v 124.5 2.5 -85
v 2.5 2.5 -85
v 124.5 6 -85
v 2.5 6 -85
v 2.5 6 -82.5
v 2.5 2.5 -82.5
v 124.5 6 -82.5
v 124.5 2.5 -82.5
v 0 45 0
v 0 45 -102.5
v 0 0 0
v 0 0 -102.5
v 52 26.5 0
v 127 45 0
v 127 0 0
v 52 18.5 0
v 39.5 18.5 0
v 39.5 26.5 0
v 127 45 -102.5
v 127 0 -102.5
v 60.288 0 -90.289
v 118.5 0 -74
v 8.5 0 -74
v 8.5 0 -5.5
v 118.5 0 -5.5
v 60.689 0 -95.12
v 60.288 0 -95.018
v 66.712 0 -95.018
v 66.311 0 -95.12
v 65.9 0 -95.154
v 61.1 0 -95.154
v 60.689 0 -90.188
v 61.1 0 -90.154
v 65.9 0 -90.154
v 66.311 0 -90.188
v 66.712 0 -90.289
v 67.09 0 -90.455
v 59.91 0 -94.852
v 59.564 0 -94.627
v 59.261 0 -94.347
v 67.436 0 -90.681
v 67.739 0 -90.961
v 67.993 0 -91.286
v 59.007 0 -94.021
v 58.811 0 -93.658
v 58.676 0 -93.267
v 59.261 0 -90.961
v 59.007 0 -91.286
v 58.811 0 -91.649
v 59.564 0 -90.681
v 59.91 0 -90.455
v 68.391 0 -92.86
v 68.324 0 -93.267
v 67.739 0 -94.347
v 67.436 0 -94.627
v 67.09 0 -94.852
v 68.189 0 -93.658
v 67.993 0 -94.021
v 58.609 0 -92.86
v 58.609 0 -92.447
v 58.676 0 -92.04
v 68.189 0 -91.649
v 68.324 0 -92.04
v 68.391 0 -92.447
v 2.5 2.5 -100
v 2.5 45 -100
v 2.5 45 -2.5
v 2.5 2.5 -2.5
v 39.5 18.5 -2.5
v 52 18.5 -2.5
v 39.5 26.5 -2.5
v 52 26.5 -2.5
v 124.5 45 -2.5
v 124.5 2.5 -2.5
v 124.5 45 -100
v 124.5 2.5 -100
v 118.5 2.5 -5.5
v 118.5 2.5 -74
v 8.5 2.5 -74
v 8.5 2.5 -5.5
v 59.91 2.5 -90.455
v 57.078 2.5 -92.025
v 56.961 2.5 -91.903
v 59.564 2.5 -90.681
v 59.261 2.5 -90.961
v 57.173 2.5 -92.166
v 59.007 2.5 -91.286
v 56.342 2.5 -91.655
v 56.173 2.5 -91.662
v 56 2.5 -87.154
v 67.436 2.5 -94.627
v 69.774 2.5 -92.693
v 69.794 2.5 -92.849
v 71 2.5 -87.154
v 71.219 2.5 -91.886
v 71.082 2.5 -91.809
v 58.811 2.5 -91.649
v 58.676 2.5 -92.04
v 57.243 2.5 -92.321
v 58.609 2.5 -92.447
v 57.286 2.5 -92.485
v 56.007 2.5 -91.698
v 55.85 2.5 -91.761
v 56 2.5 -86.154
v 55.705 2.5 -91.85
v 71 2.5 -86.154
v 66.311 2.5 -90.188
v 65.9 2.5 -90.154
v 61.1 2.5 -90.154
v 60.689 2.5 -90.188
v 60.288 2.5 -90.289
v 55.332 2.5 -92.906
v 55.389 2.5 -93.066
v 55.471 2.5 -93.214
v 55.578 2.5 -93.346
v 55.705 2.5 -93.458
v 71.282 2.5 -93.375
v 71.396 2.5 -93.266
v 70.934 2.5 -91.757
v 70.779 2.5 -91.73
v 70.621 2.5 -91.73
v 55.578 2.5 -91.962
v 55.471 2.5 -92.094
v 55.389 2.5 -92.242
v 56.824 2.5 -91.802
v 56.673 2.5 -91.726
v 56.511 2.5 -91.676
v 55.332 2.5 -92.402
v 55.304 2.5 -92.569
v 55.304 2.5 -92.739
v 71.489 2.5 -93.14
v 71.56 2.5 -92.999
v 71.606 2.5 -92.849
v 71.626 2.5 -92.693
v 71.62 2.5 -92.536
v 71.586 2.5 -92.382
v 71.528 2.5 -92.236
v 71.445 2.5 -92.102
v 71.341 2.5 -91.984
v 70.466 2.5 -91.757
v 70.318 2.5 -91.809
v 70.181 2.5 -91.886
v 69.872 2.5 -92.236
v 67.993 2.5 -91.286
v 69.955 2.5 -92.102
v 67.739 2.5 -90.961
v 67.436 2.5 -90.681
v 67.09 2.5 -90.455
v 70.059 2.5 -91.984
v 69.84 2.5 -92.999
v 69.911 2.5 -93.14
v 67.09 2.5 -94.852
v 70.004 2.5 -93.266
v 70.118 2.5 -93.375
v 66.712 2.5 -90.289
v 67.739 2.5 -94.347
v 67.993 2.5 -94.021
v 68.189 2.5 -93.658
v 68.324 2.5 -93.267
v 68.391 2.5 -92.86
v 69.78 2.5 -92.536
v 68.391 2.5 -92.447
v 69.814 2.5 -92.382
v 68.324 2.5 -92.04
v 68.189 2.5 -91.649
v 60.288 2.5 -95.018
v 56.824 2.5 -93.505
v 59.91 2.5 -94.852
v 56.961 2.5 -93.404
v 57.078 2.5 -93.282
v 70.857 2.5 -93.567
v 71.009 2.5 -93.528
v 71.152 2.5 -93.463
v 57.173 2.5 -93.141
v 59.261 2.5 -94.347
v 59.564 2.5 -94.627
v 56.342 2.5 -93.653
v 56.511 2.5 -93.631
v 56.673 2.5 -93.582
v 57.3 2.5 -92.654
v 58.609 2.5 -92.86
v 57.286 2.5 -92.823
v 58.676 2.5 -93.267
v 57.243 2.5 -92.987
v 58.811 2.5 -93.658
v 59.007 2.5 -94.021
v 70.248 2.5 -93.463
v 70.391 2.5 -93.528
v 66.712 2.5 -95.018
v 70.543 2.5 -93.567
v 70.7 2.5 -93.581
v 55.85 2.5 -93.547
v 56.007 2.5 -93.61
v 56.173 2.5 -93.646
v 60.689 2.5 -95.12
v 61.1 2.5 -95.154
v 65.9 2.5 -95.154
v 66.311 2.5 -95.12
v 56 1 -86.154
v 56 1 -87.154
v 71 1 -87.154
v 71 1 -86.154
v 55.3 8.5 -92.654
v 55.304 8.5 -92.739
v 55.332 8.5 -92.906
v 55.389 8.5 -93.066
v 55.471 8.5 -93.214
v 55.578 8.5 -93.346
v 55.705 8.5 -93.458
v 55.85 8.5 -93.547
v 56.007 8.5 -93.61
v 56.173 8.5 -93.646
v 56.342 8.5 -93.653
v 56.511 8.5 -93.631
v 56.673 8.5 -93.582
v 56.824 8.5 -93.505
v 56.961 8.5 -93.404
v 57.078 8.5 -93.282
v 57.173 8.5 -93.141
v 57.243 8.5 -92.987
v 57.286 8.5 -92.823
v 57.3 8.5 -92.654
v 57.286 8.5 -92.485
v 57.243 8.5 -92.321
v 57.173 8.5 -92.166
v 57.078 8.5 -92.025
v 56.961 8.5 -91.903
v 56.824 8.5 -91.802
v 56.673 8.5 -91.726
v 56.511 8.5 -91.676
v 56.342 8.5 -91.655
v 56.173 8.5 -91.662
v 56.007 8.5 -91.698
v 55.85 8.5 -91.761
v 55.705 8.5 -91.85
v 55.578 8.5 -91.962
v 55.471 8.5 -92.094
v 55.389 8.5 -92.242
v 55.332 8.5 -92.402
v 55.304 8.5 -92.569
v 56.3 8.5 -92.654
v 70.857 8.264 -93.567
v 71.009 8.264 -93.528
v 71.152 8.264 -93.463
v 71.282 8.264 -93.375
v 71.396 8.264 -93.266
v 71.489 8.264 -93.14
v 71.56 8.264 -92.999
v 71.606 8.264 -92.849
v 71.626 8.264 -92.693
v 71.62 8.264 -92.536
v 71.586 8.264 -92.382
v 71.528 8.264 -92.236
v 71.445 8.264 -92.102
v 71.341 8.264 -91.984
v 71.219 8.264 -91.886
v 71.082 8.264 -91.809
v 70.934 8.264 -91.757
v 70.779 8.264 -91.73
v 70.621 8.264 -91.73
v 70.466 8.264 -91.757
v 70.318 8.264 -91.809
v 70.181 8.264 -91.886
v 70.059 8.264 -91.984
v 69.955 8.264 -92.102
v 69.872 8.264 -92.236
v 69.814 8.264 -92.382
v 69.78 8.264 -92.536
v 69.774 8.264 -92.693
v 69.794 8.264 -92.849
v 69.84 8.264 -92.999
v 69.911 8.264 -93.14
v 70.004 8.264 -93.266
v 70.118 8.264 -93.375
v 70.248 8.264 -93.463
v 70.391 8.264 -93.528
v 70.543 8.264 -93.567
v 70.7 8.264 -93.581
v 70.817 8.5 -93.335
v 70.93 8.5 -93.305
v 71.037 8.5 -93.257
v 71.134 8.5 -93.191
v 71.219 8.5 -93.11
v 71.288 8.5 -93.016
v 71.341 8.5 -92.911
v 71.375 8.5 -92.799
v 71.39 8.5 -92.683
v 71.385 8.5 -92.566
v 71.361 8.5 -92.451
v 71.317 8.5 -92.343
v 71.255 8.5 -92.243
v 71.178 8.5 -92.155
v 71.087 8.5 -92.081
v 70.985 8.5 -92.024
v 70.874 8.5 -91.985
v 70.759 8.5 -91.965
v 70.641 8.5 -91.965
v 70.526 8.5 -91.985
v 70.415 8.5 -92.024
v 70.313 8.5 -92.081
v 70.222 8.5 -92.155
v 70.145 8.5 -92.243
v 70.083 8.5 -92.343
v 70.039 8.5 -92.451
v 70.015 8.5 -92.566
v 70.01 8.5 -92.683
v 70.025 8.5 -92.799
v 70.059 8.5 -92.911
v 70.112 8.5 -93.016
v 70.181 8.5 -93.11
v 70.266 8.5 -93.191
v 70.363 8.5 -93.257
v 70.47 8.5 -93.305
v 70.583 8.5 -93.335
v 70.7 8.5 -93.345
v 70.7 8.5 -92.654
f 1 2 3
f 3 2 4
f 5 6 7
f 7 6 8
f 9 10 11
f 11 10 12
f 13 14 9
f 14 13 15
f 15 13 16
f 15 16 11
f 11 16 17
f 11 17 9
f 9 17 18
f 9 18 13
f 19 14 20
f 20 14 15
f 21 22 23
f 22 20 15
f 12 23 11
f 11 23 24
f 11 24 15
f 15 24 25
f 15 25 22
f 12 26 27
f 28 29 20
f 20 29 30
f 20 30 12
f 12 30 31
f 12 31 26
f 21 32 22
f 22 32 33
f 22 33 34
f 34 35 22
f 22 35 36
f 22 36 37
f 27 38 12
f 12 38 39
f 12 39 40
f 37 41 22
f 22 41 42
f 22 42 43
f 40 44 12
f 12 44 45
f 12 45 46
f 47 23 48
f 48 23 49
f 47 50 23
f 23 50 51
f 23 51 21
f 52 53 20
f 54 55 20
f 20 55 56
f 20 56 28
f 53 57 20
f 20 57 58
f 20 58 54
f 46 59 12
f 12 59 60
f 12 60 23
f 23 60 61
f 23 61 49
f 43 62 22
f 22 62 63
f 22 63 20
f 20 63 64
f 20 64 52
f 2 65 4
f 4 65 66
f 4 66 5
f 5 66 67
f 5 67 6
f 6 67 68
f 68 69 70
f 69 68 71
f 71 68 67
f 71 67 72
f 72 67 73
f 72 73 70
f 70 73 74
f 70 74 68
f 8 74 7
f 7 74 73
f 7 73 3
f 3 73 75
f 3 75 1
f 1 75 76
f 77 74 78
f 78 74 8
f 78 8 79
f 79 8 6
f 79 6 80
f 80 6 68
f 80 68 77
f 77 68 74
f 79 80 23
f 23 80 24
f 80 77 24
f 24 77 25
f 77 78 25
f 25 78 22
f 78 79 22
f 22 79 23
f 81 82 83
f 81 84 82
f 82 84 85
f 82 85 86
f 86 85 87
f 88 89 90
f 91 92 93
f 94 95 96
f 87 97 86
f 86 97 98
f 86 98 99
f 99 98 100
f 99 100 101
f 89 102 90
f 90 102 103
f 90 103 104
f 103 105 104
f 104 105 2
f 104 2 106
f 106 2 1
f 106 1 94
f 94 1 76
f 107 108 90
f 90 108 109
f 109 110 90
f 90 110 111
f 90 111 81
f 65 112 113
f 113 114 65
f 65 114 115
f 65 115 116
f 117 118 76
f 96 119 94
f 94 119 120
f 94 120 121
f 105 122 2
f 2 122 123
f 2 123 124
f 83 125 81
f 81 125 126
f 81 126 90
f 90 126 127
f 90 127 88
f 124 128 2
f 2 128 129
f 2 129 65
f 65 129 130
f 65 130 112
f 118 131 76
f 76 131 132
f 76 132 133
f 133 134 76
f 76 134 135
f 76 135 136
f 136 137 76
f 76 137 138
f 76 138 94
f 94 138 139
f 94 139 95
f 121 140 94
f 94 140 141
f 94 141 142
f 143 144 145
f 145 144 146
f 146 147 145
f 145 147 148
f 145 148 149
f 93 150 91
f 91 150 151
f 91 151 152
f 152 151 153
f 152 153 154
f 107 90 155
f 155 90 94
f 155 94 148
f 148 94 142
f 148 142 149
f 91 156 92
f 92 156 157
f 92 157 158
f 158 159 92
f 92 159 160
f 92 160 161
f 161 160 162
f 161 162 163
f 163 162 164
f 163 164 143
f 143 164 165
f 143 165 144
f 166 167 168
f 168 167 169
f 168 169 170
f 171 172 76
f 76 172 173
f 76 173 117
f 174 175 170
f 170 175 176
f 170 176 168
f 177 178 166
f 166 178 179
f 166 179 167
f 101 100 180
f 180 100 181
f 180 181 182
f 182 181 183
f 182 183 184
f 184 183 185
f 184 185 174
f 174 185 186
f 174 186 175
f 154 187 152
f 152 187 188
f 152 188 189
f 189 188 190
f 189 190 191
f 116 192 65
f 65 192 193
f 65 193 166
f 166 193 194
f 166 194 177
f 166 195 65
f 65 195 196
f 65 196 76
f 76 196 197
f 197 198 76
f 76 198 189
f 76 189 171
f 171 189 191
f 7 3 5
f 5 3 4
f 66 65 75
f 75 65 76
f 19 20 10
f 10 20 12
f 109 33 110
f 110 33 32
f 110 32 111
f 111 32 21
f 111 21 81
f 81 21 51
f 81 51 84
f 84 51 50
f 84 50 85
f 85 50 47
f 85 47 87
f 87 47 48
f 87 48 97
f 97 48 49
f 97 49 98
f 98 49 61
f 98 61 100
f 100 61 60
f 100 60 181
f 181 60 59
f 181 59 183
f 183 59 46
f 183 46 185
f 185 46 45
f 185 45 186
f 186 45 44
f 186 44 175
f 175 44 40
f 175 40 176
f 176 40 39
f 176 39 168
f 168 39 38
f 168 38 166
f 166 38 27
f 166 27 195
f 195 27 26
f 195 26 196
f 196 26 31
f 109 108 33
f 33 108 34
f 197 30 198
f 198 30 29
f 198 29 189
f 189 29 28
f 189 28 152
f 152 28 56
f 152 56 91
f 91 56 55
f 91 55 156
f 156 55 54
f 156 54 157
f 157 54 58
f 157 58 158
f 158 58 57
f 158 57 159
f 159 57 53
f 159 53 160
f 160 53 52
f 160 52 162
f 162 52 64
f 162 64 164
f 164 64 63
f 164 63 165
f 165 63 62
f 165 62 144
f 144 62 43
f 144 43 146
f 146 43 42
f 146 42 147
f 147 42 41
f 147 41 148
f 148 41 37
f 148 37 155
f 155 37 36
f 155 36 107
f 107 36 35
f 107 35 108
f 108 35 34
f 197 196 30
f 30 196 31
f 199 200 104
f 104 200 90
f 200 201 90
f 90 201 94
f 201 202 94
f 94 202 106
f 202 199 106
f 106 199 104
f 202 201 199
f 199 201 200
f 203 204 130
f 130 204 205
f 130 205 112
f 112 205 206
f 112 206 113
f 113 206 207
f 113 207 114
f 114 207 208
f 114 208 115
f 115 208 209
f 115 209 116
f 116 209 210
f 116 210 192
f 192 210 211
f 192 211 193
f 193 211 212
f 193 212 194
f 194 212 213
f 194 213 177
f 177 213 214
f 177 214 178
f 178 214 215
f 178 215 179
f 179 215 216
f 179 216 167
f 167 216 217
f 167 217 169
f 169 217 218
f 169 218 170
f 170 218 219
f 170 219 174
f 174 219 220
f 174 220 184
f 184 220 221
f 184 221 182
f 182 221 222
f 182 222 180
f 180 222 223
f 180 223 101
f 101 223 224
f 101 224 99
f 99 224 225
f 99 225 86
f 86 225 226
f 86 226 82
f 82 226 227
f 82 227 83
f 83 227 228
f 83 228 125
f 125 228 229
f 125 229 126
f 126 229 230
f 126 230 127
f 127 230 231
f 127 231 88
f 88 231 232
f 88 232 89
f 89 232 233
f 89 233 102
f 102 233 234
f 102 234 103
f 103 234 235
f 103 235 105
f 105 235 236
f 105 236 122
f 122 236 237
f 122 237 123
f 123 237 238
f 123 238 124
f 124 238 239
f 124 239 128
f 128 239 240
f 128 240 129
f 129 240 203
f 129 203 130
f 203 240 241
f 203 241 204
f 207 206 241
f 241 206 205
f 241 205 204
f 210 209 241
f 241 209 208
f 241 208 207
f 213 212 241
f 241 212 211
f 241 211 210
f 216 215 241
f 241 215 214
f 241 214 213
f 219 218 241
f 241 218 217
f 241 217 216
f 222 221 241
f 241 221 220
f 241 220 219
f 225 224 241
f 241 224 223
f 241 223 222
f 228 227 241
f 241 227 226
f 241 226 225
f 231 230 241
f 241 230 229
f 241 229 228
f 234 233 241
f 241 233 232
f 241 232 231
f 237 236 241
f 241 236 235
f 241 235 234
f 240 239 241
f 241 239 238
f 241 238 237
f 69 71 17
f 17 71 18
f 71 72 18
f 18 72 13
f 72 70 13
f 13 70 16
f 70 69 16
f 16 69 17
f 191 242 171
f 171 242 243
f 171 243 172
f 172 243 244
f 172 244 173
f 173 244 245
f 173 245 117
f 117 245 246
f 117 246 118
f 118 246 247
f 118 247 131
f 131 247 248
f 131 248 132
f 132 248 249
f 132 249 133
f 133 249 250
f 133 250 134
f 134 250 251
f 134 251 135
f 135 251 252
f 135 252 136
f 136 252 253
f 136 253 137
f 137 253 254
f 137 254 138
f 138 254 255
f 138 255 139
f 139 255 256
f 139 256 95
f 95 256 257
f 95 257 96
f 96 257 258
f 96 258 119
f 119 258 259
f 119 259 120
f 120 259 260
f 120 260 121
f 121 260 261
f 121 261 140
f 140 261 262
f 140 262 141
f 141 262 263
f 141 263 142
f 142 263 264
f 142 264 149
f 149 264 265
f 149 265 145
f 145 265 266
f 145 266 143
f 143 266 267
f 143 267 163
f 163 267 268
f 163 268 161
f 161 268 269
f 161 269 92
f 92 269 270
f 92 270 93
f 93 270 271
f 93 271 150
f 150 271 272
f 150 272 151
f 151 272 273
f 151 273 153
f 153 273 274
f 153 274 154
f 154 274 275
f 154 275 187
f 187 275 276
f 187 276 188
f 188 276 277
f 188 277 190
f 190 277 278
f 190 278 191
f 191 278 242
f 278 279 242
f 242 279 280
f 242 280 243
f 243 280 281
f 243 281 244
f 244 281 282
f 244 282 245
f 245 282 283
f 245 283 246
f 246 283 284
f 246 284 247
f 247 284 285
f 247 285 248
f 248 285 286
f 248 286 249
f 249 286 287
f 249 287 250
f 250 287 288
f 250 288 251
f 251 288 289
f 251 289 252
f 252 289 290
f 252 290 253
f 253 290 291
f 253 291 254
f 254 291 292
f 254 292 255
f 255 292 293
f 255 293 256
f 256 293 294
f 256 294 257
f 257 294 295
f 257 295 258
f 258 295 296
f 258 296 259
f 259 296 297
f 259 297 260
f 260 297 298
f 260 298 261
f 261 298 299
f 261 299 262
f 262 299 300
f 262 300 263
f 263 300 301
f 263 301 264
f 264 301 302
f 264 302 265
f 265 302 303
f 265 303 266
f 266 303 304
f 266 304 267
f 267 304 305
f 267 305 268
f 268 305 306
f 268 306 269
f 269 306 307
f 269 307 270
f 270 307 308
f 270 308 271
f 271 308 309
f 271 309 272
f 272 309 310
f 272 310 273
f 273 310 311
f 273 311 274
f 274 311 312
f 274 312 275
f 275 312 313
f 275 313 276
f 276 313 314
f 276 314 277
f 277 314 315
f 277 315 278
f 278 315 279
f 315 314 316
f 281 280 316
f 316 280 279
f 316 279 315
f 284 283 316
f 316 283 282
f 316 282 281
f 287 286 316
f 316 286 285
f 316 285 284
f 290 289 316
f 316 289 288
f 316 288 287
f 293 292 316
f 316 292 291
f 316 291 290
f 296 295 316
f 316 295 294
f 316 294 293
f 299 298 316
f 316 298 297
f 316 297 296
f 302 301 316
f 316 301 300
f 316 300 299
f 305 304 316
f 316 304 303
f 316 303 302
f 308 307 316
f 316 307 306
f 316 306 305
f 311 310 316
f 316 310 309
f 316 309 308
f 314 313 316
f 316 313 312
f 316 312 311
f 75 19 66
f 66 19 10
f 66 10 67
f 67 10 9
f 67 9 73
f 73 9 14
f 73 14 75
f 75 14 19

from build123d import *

# Parameters (mm, degrees)
SKETCH1_W           = 127
SKETCH1_H           = 85
BOSS_EXTRUDE1_DEPTH = 2.5
SKETCH2_W           = 127
SKETCH2_H           = 85
SKETCH2_W_2         = 122
SKETCH2_H_2         = 80
BOSS_EXTRUDE2_DEPTH = 38.5
SKETCH3_W           = 110
SKETCH3_H           = 68.5
CUT_EXTRUDE1_DEPTH  = 2.5
BOSS_EXTRUDE3_DEPTH = 15
SKETCH10_W          = 122
SKETCH10_H          = 2.5
CUT_EXTRUDE2_DEPTH  = 35
SKETCH11_W          = 127
SKETCH11_H          = 41
BOSS_EXTRUDE4_DEPTH = 2.5
CUT_EXTRUDE4_DEPTH  = 2.5
SKETCH14_W          = 15
SKETCH14_H          = 1
CUT_EXTRUDE5_DEPTH  = 1.5
SKETCH13_R          = 1
BOSS_EXTRUDE6_DEPTH = 6
SKETCH17_W          = 12.5
SKETCH17_H          = 8
CUT_EXTRUDE6_DEPTH  = 2.5
SKETCH19_W          = 127
SKETCH19_H          = 102.5
SKETCH19_W_2        = 122
SKETCH19_H_2        = 97.5
BOSS_EXTRUDE7_DEPTH = 4


# Read off the part's stored shape, not the designer's step: #1-64 Machine Threads Stud1
with BuildPart() as part:
    # Sketch1 → Boss-Extrude1 (new body)
    with BuildSketch(Plane(origin=(0, 0, 0), x_dir=(1, 0, 0), z_dir=(0, 1, 0))):
        with Locations((63.5, 42.5)):
            Rectangle(SKETCH1_W, SKETCH1_H)
    extrude(amount=BOSS_EXTRUDE1_DEPTH)

    # Sketch2 → Boss-Extrude2 (add)
    with BuildSketch(Plane(origin=(0, 2.5, 0), x_dir=(1, 0, 0), z_dir=(0, 1, 0))):
        with Locations((63.5, 42.5)):
            Rectangle(SKETCH2_W, SKETCH2_H)
        with Locations((63.5, 42.5)):
            Rectangle(SKETCH2_W_2, SKETCH2_H_2, mode=Mode.SUBTRACT)
    extrude(amount=BOSS_EXTRUDE2_DEPTH)

    # Sketch3 → Cut-Extrude1 (cut)
    with BuildSketch(Plane(origin=(0, 0, 0), x_dir=(-1, 0, 0), z_dir=(0, -1, 0))):
        with Locations((-63.5, 39.75)):
            Rectangle(SKETCH3_W, SKETCH3_H)
    extrude(amount=-CUT_EXTRUDE1_DEPTH, mode=Mode.SUBTRACT)

    # Sketch9 → Boss-Extrude3 (add)
    with BuildSketch(Plane(origin=(0, 0, -85), x_dir=(-1, 0, 0), z_dir=(0, 0, -1))):
        Polygon((-127, 0), (0, 0), (0, 2.5), (0, 41), (-2.5, 41), (-2.5, 2.5), (-124.5, 2.5), (-124.5, 41), (-127, 41), (-127, 2.5), align=None)
    extrude(amount=BOSS_EXTRUDE3_DEPTH)

    # Sketch10 → Cut-Extrude2 (cut)
    with BuildSketch(Plane(origin=(0, 41, 0), x_dir=(1, 0, 0), z_dir=(0, 1, 0))):
        with Locations((63.5, 83.75)):
            Rectangle(SKETCH10_W, SKETCH10_H)
    extrude(amount=-CUT_EXTRUDE2_DEPTH, mode=Mode.SUBTRACT)

    # Sketch11 → Boss-Extrude4 (add)
    with BuildSketch(Plane(origin=(0, 0, -100), x_dir=(-1, 0, 0), z_dir=(0, 0, -1))):
        with Locations((-63.5, 20.5)):
            Rectangle(SKETCH11_W, SKETCH11_H)
    extrude(amount=BOSS_EXTRUDE4_DEPTH)

    # Sketch6 → Cut-Extrude4 (cut)
    with BuildSketch(Plane(origin=(0, 0, 0), x_dir=(-1, 0, 0), z_dir=(0, -1, 0))):
        with BuildLine():
            Line((-61.1, 90.153713072), (-65.9, 90.153713072))
            ThreePointArc((-65.9, 90.153713072), (-68.4, 92.653713072), (-65.9, 95.153713072))
            Line((-65.9, 95.153713072), (-61.1, 95.153713072))
            ThreePointArc((-61.1, 95.153713072), (-58.6, 92.653713072), (-61.1, 90.153713072))
        make_face()
    extrude(amount=-CUT_EXTRUDE4_DEPTH, mode=Mode.SUBTRACT)

    # Sketch14 → Cut-Extrude5 (cut)
    with BuildSketch(Plane(origin=(0, 2.5, 0), x_dir=(1, 0, 0), z_dir=(0, 1, 0))):
        with Locations((63.5, 86.653713072)):
            Rectangle(SKETCH14_W, SKETCH14_H)
    extrude(amount=-CUT_EXTRUDE5_DEPTH, mode=Mode.SUBTRACT)

    # Sketch13 → Boss-Extrude6 (add)
    with BuildSketch(Plane(origin=(0, 2.5, 0), x_dir=(1, 0, 0), z_dir=(0, 1, 0))):
        with Locations((56.3, 92.653713072)):
            Circle(SKETCH13_R)
        with Locations((70.7, 92.653713072)):
            Circle(SKETCH13_R)
    extrude(amount=BOSS_EXTRUDE6_DEPTH)

    # Sketch17 → Cut-Extrude6 (cut)
    with BuildSketch(Plane.XY):
        with Locations((45.75, 22.5)):
            Rectangle(SKETCH17_W, SKETCH17_H)
    extrude(amount=-CUT_EXTRUDE6_DEPTH, mode=Mode.SUBTRACT)

    # Sketch19 → Boss-Extrude7 (add)
    with BuildSketch(Plane(origin=(0, 41, 0), x_dir=(1, 0, 0), z_dir=(0, 1, 0))):
        with Locations((63.5, 51.25)):
            Rectangle(SKETCH19_W, SKETCH19_H)
        with Locations((63.5, 51.25)):
            Rectangle(SKETCH19_W_2, SKETCH19_H_2, mode=Mode.SUBTRACT)
    extrude(amount=BOSS_EXTRUDE7_DEPTH)

    # #1-64 Machine Threads Stud1 outline → #1-64 Machine Threads Stud1 (revolve, cut)
    with BuildSketch(Plane(origin=(70.7, 0, -92.653713072), x_dir=(1, 0, 0), z_dir=(0, 0, 1))):
        Polygon((1, 8.5), (0.69088, 8.5), (0.9271, 8.26378), (0.9271, 2.5), (1, 2.5), align=None)
    revolve(axis=Axis((70.7, 0, -92.653713072), (0, 1, 0)), mode=Mode.SUBTRACT)


solid = part.part
